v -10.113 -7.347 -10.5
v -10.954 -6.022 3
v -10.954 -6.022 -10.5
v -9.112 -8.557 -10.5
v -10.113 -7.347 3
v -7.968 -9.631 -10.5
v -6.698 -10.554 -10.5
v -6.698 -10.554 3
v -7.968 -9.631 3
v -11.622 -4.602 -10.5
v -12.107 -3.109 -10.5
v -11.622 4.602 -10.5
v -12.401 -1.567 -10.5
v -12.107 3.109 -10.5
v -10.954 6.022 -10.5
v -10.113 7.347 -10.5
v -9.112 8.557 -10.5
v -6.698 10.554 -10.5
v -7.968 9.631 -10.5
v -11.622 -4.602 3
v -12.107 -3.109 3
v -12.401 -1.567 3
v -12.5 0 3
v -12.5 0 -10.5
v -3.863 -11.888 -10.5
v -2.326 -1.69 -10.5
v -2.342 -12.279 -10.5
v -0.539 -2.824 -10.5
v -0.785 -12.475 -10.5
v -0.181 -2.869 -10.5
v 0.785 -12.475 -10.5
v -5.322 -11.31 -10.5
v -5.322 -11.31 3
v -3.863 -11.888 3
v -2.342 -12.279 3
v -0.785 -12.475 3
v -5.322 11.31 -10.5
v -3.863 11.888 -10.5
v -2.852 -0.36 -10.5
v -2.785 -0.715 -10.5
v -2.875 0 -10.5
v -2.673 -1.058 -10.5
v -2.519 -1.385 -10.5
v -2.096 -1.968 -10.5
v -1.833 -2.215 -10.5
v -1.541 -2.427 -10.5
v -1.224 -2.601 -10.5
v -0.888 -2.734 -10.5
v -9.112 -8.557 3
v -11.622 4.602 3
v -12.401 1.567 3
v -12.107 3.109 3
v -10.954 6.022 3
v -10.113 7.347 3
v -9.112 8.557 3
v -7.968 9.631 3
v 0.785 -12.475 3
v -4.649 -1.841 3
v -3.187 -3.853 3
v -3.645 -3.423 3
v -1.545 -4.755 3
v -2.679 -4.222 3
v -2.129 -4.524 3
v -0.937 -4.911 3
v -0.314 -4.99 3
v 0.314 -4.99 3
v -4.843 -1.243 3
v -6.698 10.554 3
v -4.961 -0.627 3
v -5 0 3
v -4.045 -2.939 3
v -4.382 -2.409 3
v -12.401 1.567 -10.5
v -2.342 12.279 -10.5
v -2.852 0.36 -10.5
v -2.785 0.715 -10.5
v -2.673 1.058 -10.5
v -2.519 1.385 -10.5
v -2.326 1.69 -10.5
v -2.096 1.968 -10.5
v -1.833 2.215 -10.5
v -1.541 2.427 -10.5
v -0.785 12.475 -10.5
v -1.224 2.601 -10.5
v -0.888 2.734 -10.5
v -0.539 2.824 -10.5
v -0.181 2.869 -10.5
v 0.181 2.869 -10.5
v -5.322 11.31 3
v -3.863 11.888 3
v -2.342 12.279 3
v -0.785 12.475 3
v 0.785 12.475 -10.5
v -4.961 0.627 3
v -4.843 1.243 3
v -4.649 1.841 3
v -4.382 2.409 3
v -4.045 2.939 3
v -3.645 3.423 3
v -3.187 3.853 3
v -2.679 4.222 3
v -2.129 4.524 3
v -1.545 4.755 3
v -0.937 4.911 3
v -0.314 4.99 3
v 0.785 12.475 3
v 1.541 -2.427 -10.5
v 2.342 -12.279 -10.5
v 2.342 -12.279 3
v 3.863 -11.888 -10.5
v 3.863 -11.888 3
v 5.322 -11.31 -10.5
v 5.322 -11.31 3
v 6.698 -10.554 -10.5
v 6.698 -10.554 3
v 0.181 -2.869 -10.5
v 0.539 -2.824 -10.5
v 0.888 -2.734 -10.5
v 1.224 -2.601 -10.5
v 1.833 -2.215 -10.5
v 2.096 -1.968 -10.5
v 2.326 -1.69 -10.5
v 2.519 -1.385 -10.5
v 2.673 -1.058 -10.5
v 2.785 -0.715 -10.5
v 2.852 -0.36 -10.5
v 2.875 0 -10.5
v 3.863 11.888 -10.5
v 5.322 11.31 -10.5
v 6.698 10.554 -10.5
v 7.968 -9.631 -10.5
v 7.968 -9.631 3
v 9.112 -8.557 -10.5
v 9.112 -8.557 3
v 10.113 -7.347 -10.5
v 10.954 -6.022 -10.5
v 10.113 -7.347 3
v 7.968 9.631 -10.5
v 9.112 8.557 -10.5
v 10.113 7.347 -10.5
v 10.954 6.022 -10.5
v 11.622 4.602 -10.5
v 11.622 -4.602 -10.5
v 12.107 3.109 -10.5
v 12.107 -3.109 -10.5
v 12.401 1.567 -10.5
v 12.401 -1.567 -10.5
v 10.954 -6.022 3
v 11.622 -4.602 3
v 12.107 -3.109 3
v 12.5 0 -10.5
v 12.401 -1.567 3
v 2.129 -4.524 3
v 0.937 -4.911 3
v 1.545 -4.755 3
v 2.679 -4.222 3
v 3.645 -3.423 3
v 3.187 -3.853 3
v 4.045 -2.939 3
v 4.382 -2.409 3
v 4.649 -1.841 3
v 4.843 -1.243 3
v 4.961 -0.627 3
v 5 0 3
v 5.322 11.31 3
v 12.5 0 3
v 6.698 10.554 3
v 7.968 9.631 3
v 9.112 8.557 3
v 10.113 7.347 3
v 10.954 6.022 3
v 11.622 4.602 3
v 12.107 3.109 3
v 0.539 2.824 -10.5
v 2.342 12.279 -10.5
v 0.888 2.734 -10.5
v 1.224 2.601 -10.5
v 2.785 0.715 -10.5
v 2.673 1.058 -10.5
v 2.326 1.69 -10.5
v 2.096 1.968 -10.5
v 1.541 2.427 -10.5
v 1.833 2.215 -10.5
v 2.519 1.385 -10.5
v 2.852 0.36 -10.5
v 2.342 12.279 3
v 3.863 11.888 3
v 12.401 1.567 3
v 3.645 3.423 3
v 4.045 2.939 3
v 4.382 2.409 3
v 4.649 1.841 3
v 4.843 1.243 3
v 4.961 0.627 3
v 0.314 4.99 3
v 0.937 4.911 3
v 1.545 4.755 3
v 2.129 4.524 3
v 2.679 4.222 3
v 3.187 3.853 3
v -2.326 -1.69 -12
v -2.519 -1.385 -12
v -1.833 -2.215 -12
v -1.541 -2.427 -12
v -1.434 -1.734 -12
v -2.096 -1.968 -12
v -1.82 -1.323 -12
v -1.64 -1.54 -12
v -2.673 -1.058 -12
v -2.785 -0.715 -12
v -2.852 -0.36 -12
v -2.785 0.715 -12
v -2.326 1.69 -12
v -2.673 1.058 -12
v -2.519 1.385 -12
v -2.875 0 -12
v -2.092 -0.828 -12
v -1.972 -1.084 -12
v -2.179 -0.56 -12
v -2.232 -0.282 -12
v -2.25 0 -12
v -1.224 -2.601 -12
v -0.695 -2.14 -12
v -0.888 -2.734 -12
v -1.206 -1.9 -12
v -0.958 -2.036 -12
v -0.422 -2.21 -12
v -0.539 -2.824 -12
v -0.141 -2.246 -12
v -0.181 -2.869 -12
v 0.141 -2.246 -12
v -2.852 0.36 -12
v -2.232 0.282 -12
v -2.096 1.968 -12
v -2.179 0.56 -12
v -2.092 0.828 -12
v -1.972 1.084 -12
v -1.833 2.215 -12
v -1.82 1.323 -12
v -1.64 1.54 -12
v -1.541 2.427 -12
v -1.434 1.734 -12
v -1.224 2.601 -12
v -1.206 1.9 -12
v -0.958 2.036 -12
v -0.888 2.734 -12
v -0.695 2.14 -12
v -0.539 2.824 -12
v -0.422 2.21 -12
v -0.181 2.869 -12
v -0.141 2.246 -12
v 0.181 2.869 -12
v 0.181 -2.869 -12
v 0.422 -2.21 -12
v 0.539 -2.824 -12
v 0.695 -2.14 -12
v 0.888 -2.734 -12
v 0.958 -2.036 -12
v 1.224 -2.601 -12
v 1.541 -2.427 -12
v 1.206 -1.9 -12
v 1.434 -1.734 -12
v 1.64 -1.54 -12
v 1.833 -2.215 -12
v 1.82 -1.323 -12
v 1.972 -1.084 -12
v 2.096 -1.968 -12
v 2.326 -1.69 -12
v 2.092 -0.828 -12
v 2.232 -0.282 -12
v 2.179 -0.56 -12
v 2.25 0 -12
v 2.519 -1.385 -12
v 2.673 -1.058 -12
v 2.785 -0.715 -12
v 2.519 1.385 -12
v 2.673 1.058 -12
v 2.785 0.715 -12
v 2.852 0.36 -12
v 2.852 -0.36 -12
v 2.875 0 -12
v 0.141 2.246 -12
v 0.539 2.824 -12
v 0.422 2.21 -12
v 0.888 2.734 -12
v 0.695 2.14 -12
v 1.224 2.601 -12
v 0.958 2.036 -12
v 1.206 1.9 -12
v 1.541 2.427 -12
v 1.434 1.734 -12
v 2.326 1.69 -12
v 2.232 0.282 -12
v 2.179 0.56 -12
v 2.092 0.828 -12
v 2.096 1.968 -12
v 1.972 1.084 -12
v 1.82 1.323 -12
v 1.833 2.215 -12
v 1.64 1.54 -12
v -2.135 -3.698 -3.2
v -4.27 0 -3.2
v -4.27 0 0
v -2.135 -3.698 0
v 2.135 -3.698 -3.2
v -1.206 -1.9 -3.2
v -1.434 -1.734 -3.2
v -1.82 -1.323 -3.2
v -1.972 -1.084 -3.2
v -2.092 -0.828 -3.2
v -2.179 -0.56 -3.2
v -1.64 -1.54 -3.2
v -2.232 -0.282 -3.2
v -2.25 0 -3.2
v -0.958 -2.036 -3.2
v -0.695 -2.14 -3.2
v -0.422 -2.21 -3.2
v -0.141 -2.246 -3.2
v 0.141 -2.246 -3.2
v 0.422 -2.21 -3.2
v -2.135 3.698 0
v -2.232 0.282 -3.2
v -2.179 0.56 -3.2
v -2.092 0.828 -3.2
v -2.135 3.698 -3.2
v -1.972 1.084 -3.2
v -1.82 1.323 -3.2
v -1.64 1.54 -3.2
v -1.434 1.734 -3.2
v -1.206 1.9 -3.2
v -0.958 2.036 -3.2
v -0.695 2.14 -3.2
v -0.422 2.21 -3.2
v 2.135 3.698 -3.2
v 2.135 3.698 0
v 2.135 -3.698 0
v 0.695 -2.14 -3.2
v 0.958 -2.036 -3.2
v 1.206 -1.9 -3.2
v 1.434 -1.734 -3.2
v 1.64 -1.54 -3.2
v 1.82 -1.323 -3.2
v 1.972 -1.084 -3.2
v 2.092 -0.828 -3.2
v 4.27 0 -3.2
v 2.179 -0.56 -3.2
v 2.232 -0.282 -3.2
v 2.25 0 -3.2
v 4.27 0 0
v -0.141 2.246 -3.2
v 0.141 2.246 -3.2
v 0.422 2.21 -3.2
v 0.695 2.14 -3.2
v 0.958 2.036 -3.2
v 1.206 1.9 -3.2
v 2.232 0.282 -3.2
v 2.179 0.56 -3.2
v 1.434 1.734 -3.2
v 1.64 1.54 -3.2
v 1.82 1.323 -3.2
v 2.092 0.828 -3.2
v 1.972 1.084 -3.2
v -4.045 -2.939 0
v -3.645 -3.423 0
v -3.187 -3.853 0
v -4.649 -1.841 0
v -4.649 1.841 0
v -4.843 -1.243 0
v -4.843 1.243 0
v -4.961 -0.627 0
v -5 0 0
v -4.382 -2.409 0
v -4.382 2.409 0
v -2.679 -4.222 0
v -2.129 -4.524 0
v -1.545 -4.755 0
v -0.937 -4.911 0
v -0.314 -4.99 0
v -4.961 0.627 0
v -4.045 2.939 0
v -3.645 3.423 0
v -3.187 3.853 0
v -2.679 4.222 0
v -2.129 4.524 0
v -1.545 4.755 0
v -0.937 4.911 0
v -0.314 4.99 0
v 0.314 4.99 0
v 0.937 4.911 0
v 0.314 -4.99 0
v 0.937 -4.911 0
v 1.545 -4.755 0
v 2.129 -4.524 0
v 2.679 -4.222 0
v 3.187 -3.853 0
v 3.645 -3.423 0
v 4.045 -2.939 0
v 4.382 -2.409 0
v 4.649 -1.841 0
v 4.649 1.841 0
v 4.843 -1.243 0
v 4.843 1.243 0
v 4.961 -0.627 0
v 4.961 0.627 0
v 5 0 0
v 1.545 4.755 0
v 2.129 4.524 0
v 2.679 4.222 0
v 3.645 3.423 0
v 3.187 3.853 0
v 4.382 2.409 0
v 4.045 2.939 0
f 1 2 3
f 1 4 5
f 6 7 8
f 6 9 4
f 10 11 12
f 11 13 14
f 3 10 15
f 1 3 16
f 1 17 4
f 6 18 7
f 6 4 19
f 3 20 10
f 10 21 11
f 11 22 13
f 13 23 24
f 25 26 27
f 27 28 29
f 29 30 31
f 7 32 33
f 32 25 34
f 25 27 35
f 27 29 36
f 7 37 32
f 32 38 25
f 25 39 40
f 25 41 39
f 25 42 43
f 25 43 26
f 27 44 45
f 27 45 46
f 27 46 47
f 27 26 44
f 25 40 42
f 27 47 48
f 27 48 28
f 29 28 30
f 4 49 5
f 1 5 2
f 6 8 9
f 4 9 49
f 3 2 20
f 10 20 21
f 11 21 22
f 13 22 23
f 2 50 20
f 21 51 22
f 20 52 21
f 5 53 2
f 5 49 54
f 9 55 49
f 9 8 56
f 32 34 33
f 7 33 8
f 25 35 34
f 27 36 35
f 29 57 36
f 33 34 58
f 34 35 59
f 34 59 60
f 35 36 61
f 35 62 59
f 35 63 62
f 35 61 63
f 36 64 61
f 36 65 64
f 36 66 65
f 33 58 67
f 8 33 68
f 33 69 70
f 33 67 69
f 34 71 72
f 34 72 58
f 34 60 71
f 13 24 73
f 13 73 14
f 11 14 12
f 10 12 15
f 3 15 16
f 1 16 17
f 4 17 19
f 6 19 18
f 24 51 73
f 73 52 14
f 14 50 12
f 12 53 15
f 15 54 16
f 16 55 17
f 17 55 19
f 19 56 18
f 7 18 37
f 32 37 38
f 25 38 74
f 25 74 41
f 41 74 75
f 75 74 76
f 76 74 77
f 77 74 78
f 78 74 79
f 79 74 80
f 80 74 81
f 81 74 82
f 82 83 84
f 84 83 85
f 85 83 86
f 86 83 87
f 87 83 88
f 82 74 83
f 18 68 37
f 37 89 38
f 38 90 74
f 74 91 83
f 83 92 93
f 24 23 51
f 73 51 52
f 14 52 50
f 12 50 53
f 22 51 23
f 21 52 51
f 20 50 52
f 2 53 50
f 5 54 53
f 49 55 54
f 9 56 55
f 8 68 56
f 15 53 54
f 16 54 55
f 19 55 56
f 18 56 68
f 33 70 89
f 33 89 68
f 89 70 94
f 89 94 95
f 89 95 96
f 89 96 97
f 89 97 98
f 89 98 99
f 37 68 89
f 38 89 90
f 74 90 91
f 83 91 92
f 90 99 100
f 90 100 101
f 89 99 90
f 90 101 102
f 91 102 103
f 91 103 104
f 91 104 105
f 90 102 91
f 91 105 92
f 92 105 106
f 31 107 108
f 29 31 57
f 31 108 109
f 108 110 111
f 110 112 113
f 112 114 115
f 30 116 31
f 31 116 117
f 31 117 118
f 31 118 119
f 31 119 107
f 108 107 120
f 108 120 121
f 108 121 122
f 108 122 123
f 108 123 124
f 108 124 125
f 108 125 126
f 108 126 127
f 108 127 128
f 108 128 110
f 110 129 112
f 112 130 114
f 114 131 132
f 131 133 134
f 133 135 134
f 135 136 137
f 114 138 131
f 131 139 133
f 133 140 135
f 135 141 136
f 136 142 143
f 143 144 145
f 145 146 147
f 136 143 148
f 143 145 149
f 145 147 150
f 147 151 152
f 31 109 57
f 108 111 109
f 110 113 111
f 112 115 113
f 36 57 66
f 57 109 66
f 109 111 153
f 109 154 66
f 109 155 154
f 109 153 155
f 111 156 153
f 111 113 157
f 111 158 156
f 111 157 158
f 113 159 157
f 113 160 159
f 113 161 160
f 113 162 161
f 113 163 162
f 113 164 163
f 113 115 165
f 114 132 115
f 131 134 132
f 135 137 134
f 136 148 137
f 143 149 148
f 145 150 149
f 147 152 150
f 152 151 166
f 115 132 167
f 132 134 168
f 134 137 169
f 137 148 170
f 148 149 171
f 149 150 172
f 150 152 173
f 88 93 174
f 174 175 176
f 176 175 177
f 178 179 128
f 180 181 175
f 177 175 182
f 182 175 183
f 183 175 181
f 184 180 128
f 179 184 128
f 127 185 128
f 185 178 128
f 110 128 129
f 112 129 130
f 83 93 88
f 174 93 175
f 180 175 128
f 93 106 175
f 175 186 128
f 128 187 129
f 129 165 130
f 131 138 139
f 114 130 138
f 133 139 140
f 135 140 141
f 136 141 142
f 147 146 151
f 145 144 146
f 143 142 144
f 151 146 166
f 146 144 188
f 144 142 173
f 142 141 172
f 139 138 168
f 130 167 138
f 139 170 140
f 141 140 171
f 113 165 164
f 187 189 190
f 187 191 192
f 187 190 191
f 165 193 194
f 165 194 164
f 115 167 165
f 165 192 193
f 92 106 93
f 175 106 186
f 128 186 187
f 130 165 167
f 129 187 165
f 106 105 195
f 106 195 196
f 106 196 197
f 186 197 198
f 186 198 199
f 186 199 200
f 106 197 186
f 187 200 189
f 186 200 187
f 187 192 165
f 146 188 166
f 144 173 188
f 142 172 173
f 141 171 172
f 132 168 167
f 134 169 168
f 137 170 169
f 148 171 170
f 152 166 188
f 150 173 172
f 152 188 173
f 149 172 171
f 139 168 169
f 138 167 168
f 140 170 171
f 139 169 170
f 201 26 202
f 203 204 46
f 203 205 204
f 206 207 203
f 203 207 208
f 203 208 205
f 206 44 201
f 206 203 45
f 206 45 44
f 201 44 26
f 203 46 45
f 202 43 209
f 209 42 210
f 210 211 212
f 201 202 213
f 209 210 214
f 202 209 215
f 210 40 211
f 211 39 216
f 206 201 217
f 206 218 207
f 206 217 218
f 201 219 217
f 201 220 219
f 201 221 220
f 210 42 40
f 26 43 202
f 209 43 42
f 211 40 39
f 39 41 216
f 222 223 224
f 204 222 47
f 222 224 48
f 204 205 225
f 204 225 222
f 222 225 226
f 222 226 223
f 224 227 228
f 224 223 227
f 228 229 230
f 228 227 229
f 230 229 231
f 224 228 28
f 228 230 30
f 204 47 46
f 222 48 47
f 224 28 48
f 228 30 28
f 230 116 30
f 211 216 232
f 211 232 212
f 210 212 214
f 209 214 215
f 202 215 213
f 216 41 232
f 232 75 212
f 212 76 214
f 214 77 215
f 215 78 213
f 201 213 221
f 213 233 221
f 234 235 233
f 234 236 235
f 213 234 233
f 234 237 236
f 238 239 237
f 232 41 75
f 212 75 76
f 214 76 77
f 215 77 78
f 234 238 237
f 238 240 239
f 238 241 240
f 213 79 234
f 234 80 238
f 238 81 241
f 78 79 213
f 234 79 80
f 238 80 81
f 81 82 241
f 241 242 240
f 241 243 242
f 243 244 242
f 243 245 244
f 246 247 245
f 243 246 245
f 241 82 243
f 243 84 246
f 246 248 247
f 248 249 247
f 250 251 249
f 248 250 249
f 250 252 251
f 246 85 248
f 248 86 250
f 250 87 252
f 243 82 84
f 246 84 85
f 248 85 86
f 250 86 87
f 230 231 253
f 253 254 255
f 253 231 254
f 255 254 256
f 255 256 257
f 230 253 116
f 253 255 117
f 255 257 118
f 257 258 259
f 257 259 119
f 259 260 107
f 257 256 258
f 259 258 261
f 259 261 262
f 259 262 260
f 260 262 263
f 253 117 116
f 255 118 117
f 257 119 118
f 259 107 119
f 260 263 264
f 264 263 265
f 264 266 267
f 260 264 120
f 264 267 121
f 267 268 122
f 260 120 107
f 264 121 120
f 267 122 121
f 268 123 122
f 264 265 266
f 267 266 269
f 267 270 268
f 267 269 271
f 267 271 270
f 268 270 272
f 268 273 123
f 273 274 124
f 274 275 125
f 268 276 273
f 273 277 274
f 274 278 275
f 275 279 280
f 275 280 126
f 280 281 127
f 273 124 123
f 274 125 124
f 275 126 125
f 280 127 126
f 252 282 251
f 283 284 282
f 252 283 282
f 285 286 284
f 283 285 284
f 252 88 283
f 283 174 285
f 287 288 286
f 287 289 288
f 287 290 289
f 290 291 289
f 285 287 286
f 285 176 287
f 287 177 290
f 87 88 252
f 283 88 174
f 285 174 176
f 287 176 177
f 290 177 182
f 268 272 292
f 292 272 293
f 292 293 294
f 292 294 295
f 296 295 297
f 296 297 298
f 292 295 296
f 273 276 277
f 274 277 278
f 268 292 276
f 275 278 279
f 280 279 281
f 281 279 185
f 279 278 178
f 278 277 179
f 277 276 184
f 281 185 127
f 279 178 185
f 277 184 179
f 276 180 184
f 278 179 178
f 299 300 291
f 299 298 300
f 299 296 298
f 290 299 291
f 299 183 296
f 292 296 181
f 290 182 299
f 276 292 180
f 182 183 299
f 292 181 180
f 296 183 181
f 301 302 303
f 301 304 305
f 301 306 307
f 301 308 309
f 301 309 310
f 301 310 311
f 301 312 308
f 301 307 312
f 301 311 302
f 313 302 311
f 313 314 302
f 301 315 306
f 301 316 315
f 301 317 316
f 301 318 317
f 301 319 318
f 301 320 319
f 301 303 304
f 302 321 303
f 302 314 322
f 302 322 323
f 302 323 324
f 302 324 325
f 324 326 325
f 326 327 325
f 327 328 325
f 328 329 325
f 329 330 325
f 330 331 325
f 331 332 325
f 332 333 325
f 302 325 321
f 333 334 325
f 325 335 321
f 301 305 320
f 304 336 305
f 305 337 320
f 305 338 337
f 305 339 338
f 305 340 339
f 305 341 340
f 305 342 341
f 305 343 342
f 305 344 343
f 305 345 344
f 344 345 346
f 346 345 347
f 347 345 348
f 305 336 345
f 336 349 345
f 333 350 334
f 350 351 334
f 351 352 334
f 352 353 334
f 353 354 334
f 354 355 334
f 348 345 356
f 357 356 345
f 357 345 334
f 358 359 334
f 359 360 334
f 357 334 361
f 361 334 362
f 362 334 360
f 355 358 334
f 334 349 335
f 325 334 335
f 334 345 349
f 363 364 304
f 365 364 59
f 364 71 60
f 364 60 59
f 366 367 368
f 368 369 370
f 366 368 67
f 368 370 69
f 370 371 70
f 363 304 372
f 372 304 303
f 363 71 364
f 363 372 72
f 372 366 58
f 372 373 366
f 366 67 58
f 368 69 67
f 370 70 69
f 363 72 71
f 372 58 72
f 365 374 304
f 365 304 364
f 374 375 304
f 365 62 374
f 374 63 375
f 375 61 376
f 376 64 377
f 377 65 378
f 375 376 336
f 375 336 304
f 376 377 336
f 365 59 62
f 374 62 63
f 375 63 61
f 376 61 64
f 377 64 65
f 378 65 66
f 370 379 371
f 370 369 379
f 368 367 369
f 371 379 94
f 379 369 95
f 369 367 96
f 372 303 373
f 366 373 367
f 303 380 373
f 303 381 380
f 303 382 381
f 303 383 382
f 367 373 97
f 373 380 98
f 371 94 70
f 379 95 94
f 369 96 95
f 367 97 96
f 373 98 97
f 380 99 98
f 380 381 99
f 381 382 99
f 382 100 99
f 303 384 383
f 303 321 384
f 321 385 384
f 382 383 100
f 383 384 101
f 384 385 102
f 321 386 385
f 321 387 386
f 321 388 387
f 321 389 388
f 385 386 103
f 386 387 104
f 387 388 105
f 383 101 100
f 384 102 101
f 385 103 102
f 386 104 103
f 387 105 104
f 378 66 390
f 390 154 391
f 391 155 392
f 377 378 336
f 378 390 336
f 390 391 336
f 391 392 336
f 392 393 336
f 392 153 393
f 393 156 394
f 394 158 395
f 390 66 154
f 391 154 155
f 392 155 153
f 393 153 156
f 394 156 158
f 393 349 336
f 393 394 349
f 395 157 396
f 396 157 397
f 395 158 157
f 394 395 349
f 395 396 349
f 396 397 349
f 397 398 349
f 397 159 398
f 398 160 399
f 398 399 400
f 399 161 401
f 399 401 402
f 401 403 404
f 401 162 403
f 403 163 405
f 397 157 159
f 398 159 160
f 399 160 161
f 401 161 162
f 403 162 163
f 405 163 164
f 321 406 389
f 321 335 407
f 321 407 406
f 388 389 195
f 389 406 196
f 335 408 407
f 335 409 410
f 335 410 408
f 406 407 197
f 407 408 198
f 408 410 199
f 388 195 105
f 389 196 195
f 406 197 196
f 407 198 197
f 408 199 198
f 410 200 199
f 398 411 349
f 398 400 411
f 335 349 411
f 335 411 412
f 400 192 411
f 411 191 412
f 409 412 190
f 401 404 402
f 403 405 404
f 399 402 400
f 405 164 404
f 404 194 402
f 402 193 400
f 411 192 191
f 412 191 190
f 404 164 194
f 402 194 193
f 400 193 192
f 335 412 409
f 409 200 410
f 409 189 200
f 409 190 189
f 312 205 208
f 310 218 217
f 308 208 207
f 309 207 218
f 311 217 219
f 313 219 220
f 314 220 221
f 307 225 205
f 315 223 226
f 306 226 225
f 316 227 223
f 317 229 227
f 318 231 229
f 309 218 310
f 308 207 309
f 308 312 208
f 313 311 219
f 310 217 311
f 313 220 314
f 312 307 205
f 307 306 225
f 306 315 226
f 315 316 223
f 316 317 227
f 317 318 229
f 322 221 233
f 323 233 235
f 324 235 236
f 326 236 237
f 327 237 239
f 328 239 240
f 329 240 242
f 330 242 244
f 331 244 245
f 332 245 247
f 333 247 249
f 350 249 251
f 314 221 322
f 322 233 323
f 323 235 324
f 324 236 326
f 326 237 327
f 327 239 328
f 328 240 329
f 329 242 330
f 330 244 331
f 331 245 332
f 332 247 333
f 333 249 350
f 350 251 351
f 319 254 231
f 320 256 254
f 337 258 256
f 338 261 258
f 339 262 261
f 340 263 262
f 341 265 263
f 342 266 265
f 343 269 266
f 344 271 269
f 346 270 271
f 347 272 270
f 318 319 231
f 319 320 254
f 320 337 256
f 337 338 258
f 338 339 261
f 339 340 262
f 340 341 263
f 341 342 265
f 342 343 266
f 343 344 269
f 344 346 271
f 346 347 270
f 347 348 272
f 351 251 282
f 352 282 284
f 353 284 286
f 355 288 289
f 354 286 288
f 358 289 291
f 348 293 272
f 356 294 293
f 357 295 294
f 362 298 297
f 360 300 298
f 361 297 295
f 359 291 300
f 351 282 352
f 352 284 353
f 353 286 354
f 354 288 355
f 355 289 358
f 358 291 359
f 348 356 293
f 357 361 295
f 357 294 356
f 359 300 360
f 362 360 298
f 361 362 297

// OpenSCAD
$fn = 50;

difference() {
	union() {
		translate(v = [0, 0, -10.5]) {
			cylinder(h = 13.5, r = 12.5);
		}
		#translate(v = [0, 0, -12.0]) {
			cylinder(h = 12, r = 2.875);
		}
	}
	union() {
		translate(v = [0, 0, 0]) {
			rotate(a = [0, 0, 0]) {
				difference() {
					union() {
						translate(v = [0, 0, -3.2]) {
							linear_extrude(height = 3.2) {
								polygon(points = [[4.2698, 0.0], [2.1349000000000005, 3.697755269078796], [-2.134899999999999, 3.6977552690787965], [-4.2698, 5.228996902999369e-16], [-2.134900000000002, -3.6977552690787956], [2.1348999999999974, -3.697755269078798]]);
							}
						}
					}
					union();
				}
			}
		}
		#cylinder(h = 3, r = 5.0);
		#translate(v = [0, 0, -100.0]) {
			cylinder(h = 200, r = 2.25);
		}
	}
}
